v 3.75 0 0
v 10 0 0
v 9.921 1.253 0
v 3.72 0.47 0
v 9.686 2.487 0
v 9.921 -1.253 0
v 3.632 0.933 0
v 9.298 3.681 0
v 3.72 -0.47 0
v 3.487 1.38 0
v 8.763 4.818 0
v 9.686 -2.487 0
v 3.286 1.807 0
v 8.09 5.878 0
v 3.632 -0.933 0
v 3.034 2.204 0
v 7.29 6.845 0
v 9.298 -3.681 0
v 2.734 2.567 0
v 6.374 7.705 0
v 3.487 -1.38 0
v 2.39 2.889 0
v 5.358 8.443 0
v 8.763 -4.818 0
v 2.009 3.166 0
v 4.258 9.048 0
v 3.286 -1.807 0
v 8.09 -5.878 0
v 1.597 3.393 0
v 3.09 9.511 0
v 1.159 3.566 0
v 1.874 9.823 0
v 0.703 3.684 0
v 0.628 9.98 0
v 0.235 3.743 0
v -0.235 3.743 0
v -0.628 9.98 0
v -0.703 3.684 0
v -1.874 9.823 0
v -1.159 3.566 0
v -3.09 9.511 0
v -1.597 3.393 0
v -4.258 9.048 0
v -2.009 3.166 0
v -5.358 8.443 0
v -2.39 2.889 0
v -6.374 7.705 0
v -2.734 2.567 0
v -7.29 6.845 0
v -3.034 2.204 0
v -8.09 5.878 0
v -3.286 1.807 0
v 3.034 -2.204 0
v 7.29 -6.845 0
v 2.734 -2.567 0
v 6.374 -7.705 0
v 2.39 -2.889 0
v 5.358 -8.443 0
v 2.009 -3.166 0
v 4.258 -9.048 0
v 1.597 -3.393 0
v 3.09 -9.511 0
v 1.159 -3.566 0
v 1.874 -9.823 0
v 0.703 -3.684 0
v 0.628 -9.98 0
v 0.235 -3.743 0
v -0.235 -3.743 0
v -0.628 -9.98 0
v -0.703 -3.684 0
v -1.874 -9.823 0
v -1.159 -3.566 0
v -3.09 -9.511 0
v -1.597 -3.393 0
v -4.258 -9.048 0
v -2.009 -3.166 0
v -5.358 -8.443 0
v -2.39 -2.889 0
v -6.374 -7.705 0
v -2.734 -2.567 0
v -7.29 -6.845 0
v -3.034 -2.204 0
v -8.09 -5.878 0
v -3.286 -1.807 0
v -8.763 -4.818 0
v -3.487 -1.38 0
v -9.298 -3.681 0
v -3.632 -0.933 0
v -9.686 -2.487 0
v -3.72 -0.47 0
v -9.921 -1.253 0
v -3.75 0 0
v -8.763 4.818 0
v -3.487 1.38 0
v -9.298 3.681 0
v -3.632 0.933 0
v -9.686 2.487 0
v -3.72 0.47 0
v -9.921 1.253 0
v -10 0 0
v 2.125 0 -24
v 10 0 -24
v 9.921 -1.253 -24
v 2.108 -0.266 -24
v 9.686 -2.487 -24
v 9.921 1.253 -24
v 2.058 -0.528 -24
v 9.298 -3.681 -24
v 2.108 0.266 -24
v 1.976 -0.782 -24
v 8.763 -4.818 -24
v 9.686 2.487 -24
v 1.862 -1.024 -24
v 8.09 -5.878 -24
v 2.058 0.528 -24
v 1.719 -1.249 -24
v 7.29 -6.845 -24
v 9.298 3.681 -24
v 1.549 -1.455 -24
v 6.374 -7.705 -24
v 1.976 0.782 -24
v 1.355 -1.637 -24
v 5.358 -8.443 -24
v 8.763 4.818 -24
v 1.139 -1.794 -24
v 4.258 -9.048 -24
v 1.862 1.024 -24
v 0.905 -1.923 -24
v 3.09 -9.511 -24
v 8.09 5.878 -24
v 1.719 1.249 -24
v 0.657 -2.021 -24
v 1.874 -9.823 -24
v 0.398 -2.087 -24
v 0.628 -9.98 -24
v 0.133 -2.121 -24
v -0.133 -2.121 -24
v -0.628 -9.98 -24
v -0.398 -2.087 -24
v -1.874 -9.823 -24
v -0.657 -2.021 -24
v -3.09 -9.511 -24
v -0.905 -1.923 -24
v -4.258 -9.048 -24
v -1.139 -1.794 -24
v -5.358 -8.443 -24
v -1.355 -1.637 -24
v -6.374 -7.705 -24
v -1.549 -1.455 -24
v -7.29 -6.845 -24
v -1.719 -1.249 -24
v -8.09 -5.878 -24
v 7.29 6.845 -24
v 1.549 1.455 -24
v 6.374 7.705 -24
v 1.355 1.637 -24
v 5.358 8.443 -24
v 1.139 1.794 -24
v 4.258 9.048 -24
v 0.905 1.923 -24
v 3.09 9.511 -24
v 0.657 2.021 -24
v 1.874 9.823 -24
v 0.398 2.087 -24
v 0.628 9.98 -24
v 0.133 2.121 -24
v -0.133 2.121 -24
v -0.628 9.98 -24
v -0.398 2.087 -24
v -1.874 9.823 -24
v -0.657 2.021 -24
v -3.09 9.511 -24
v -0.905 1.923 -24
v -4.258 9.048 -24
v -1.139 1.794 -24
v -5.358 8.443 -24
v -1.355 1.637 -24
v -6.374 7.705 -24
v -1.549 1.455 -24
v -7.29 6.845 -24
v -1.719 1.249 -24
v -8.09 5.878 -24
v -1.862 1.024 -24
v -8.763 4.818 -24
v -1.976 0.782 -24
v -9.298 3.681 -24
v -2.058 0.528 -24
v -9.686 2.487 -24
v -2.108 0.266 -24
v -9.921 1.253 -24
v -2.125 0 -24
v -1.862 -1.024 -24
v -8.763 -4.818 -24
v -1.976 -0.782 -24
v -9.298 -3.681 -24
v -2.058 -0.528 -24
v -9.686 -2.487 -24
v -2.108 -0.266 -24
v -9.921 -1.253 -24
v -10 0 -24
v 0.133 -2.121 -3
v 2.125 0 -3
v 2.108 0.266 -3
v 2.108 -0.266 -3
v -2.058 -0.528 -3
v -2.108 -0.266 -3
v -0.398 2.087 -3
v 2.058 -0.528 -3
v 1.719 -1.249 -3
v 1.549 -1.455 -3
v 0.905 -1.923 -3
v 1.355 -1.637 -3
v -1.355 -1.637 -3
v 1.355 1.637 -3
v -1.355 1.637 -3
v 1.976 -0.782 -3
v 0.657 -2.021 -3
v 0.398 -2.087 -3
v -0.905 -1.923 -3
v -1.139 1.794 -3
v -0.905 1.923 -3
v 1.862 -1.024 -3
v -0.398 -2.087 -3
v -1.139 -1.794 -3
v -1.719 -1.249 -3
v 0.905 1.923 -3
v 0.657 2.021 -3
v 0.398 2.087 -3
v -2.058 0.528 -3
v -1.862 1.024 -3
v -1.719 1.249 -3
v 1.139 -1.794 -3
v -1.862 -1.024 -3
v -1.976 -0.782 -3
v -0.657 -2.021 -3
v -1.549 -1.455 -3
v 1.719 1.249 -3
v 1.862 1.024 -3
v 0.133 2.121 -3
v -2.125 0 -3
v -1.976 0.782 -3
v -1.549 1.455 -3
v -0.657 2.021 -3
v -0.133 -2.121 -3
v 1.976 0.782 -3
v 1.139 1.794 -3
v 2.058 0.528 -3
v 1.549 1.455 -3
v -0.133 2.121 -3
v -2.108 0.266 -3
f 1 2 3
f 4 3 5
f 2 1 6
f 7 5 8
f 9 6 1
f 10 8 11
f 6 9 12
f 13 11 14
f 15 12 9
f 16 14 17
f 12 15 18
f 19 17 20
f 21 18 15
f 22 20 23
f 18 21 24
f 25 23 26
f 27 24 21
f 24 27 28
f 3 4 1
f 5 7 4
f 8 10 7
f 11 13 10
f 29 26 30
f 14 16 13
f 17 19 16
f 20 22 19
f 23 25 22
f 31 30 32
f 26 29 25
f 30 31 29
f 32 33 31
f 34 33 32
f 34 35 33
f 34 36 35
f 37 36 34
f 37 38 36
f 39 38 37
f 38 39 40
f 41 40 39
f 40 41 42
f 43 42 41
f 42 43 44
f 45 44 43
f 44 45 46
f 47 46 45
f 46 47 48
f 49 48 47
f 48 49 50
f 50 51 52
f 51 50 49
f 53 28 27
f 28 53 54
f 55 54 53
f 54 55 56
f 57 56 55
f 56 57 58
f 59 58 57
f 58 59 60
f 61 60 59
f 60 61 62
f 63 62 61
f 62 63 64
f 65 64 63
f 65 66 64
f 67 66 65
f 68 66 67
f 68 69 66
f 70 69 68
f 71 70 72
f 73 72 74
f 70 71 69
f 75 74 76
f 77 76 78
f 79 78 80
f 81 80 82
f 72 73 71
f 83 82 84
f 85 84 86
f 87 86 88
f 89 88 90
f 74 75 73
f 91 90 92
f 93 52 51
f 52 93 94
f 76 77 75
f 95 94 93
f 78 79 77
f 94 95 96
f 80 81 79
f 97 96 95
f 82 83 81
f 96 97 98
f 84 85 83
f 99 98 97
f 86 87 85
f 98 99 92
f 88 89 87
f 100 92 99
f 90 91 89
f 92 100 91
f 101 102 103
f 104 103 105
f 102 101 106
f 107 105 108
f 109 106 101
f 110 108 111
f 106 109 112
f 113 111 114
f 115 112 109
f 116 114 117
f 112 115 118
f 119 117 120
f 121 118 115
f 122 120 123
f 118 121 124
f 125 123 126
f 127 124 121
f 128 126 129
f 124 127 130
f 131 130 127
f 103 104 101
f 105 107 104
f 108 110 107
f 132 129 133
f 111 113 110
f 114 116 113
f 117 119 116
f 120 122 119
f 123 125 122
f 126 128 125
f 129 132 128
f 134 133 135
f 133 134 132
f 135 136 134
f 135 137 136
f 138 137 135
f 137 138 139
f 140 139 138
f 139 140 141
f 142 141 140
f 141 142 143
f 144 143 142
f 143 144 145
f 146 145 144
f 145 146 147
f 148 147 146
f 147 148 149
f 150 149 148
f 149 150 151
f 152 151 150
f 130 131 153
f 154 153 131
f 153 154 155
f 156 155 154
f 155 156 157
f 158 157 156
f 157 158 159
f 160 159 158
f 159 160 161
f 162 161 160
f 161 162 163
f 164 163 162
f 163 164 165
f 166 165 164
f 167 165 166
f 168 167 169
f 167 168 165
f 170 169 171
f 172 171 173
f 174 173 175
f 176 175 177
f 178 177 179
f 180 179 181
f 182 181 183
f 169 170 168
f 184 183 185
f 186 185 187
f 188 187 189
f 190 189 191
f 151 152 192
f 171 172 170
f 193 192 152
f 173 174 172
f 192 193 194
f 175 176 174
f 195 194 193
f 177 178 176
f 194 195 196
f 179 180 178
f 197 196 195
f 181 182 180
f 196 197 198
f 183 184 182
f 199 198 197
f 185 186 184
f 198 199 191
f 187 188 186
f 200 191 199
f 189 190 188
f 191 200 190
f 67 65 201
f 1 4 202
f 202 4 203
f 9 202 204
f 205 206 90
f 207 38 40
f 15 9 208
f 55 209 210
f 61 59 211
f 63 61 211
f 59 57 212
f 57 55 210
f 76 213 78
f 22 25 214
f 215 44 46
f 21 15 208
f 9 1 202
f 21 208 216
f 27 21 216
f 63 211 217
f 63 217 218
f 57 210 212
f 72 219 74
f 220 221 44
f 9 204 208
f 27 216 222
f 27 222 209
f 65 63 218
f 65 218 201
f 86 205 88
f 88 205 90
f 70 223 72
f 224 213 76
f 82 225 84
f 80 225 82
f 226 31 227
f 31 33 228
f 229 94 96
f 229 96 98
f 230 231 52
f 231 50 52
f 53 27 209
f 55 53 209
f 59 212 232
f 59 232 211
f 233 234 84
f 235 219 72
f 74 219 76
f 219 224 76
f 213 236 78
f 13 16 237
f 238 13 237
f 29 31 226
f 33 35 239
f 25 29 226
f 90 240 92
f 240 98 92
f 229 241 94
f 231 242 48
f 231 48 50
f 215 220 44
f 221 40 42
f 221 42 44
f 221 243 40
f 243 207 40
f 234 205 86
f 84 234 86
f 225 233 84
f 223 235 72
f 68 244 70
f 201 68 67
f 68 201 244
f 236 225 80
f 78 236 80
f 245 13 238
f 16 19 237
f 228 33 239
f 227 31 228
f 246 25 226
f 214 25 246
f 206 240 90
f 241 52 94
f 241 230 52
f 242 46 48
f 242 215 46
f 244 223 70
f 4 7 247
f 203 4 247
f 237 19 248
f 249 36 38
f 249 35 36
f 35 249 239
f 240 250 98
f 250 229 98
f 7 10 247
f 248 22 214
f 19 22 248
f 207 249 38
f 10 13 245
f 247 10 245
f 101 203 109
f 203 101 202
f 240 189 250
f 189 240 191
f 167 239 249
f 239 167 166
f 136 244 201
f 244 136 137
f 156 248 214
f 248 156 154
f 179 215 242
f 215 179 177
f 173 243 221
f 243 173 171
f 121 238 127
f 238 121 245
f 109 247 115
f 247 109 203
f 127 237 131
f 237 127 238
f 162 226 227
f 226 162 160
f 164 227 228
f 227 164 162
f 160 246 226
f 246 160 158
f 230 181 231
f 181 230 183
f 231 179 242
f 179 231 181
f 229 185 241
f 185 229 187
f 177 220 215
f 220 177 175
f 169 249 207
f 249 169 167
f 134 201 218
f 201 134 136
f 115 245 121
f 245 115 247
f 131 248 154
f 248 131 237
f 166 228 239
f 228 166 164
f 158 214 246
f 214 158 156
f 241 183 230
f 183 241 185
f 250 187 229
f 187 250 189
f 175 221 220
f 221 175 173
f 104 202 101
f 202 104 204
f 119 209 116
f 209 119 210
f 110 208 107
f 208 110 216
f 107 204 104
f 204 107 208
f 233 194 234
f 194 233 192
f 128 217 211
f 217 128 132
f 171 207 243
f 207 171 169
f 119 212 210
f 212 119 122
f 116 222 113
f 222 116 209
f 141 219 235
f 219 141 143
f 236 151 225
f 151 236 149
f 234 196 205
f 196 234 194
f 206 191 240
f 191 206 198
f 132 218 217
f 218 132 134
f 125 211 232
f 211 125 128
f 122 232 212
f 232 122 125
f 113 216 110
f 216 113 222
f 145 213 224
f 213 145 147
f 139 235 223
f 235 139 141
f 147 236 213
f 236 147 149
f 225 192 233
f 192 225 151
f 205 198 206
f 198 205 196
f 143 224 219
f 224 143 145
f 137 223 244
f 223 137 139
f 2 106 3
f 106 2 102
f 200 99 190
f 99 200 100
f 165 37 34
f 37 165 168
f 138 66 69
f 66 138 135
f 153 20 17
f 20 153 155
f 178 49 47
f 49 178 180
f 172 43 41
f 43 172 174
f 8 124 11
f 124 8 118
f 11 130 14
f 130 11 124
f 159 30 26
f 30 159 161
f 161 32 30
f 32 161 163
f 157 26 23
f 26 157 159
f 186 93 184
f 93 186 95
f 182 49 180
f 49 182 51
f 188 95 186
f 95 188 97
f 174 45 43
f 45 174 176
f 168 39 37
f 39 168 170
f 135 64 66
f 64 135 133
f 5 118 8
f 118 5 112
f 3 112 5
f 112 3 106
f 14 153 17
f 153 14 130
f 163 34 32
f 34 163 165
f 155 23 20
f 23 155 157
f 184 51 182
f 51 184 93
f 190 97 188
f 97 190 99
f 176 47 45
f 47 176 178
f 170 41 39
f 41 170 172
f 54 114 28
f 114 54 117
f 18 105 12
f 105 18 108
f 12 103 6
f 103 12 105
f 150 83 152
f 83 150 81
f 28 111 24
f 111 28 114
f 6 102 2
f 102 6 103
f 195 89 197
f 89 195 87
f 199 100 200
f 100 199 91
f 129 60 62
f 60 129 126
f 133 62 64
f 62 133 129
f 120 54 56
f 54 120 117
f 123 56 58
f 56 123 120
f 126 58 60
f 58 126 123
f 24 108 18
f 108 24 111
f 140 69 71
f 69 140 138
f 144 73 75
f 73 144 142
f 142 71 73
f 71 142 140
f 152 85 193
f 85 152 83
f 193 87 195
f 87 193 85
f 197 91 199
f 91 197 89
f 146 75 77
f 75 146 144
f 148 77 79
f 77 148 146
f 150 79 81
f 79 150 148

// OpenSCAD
$fn = 50;


difference() {
	union() {
		translate(v = [0, 0, -24.0000000000]) {
			cylinder(h = 24, r = 10.0000000000);
		}
	}
	union() {
		translate(v = [0, 0, 0]) {
			rotate(a = [0, 0, 0]) {
				difference() {
					union() {
						#translate(v = [0, 0, -24.0000000000]) {
							cylinder(h = 24, r = 2.0000000000);
						}
						#translate(v = [0, 0, -3]) {
							cylinder(h = 3, r1 = 2.1250000000, r2 = 3.7500000000);
						}
						#translate(v = [0, 0, -24.0000000000]) {
							cylinder(h = 24, r = 2.1250000000);
						}
						#translate(v = [0, 0, -24.0000000000]) {
							cylinder(h = 24, r = 2.0000000000);
						}
					}
					union();
				}
			}
		}
	}
}
